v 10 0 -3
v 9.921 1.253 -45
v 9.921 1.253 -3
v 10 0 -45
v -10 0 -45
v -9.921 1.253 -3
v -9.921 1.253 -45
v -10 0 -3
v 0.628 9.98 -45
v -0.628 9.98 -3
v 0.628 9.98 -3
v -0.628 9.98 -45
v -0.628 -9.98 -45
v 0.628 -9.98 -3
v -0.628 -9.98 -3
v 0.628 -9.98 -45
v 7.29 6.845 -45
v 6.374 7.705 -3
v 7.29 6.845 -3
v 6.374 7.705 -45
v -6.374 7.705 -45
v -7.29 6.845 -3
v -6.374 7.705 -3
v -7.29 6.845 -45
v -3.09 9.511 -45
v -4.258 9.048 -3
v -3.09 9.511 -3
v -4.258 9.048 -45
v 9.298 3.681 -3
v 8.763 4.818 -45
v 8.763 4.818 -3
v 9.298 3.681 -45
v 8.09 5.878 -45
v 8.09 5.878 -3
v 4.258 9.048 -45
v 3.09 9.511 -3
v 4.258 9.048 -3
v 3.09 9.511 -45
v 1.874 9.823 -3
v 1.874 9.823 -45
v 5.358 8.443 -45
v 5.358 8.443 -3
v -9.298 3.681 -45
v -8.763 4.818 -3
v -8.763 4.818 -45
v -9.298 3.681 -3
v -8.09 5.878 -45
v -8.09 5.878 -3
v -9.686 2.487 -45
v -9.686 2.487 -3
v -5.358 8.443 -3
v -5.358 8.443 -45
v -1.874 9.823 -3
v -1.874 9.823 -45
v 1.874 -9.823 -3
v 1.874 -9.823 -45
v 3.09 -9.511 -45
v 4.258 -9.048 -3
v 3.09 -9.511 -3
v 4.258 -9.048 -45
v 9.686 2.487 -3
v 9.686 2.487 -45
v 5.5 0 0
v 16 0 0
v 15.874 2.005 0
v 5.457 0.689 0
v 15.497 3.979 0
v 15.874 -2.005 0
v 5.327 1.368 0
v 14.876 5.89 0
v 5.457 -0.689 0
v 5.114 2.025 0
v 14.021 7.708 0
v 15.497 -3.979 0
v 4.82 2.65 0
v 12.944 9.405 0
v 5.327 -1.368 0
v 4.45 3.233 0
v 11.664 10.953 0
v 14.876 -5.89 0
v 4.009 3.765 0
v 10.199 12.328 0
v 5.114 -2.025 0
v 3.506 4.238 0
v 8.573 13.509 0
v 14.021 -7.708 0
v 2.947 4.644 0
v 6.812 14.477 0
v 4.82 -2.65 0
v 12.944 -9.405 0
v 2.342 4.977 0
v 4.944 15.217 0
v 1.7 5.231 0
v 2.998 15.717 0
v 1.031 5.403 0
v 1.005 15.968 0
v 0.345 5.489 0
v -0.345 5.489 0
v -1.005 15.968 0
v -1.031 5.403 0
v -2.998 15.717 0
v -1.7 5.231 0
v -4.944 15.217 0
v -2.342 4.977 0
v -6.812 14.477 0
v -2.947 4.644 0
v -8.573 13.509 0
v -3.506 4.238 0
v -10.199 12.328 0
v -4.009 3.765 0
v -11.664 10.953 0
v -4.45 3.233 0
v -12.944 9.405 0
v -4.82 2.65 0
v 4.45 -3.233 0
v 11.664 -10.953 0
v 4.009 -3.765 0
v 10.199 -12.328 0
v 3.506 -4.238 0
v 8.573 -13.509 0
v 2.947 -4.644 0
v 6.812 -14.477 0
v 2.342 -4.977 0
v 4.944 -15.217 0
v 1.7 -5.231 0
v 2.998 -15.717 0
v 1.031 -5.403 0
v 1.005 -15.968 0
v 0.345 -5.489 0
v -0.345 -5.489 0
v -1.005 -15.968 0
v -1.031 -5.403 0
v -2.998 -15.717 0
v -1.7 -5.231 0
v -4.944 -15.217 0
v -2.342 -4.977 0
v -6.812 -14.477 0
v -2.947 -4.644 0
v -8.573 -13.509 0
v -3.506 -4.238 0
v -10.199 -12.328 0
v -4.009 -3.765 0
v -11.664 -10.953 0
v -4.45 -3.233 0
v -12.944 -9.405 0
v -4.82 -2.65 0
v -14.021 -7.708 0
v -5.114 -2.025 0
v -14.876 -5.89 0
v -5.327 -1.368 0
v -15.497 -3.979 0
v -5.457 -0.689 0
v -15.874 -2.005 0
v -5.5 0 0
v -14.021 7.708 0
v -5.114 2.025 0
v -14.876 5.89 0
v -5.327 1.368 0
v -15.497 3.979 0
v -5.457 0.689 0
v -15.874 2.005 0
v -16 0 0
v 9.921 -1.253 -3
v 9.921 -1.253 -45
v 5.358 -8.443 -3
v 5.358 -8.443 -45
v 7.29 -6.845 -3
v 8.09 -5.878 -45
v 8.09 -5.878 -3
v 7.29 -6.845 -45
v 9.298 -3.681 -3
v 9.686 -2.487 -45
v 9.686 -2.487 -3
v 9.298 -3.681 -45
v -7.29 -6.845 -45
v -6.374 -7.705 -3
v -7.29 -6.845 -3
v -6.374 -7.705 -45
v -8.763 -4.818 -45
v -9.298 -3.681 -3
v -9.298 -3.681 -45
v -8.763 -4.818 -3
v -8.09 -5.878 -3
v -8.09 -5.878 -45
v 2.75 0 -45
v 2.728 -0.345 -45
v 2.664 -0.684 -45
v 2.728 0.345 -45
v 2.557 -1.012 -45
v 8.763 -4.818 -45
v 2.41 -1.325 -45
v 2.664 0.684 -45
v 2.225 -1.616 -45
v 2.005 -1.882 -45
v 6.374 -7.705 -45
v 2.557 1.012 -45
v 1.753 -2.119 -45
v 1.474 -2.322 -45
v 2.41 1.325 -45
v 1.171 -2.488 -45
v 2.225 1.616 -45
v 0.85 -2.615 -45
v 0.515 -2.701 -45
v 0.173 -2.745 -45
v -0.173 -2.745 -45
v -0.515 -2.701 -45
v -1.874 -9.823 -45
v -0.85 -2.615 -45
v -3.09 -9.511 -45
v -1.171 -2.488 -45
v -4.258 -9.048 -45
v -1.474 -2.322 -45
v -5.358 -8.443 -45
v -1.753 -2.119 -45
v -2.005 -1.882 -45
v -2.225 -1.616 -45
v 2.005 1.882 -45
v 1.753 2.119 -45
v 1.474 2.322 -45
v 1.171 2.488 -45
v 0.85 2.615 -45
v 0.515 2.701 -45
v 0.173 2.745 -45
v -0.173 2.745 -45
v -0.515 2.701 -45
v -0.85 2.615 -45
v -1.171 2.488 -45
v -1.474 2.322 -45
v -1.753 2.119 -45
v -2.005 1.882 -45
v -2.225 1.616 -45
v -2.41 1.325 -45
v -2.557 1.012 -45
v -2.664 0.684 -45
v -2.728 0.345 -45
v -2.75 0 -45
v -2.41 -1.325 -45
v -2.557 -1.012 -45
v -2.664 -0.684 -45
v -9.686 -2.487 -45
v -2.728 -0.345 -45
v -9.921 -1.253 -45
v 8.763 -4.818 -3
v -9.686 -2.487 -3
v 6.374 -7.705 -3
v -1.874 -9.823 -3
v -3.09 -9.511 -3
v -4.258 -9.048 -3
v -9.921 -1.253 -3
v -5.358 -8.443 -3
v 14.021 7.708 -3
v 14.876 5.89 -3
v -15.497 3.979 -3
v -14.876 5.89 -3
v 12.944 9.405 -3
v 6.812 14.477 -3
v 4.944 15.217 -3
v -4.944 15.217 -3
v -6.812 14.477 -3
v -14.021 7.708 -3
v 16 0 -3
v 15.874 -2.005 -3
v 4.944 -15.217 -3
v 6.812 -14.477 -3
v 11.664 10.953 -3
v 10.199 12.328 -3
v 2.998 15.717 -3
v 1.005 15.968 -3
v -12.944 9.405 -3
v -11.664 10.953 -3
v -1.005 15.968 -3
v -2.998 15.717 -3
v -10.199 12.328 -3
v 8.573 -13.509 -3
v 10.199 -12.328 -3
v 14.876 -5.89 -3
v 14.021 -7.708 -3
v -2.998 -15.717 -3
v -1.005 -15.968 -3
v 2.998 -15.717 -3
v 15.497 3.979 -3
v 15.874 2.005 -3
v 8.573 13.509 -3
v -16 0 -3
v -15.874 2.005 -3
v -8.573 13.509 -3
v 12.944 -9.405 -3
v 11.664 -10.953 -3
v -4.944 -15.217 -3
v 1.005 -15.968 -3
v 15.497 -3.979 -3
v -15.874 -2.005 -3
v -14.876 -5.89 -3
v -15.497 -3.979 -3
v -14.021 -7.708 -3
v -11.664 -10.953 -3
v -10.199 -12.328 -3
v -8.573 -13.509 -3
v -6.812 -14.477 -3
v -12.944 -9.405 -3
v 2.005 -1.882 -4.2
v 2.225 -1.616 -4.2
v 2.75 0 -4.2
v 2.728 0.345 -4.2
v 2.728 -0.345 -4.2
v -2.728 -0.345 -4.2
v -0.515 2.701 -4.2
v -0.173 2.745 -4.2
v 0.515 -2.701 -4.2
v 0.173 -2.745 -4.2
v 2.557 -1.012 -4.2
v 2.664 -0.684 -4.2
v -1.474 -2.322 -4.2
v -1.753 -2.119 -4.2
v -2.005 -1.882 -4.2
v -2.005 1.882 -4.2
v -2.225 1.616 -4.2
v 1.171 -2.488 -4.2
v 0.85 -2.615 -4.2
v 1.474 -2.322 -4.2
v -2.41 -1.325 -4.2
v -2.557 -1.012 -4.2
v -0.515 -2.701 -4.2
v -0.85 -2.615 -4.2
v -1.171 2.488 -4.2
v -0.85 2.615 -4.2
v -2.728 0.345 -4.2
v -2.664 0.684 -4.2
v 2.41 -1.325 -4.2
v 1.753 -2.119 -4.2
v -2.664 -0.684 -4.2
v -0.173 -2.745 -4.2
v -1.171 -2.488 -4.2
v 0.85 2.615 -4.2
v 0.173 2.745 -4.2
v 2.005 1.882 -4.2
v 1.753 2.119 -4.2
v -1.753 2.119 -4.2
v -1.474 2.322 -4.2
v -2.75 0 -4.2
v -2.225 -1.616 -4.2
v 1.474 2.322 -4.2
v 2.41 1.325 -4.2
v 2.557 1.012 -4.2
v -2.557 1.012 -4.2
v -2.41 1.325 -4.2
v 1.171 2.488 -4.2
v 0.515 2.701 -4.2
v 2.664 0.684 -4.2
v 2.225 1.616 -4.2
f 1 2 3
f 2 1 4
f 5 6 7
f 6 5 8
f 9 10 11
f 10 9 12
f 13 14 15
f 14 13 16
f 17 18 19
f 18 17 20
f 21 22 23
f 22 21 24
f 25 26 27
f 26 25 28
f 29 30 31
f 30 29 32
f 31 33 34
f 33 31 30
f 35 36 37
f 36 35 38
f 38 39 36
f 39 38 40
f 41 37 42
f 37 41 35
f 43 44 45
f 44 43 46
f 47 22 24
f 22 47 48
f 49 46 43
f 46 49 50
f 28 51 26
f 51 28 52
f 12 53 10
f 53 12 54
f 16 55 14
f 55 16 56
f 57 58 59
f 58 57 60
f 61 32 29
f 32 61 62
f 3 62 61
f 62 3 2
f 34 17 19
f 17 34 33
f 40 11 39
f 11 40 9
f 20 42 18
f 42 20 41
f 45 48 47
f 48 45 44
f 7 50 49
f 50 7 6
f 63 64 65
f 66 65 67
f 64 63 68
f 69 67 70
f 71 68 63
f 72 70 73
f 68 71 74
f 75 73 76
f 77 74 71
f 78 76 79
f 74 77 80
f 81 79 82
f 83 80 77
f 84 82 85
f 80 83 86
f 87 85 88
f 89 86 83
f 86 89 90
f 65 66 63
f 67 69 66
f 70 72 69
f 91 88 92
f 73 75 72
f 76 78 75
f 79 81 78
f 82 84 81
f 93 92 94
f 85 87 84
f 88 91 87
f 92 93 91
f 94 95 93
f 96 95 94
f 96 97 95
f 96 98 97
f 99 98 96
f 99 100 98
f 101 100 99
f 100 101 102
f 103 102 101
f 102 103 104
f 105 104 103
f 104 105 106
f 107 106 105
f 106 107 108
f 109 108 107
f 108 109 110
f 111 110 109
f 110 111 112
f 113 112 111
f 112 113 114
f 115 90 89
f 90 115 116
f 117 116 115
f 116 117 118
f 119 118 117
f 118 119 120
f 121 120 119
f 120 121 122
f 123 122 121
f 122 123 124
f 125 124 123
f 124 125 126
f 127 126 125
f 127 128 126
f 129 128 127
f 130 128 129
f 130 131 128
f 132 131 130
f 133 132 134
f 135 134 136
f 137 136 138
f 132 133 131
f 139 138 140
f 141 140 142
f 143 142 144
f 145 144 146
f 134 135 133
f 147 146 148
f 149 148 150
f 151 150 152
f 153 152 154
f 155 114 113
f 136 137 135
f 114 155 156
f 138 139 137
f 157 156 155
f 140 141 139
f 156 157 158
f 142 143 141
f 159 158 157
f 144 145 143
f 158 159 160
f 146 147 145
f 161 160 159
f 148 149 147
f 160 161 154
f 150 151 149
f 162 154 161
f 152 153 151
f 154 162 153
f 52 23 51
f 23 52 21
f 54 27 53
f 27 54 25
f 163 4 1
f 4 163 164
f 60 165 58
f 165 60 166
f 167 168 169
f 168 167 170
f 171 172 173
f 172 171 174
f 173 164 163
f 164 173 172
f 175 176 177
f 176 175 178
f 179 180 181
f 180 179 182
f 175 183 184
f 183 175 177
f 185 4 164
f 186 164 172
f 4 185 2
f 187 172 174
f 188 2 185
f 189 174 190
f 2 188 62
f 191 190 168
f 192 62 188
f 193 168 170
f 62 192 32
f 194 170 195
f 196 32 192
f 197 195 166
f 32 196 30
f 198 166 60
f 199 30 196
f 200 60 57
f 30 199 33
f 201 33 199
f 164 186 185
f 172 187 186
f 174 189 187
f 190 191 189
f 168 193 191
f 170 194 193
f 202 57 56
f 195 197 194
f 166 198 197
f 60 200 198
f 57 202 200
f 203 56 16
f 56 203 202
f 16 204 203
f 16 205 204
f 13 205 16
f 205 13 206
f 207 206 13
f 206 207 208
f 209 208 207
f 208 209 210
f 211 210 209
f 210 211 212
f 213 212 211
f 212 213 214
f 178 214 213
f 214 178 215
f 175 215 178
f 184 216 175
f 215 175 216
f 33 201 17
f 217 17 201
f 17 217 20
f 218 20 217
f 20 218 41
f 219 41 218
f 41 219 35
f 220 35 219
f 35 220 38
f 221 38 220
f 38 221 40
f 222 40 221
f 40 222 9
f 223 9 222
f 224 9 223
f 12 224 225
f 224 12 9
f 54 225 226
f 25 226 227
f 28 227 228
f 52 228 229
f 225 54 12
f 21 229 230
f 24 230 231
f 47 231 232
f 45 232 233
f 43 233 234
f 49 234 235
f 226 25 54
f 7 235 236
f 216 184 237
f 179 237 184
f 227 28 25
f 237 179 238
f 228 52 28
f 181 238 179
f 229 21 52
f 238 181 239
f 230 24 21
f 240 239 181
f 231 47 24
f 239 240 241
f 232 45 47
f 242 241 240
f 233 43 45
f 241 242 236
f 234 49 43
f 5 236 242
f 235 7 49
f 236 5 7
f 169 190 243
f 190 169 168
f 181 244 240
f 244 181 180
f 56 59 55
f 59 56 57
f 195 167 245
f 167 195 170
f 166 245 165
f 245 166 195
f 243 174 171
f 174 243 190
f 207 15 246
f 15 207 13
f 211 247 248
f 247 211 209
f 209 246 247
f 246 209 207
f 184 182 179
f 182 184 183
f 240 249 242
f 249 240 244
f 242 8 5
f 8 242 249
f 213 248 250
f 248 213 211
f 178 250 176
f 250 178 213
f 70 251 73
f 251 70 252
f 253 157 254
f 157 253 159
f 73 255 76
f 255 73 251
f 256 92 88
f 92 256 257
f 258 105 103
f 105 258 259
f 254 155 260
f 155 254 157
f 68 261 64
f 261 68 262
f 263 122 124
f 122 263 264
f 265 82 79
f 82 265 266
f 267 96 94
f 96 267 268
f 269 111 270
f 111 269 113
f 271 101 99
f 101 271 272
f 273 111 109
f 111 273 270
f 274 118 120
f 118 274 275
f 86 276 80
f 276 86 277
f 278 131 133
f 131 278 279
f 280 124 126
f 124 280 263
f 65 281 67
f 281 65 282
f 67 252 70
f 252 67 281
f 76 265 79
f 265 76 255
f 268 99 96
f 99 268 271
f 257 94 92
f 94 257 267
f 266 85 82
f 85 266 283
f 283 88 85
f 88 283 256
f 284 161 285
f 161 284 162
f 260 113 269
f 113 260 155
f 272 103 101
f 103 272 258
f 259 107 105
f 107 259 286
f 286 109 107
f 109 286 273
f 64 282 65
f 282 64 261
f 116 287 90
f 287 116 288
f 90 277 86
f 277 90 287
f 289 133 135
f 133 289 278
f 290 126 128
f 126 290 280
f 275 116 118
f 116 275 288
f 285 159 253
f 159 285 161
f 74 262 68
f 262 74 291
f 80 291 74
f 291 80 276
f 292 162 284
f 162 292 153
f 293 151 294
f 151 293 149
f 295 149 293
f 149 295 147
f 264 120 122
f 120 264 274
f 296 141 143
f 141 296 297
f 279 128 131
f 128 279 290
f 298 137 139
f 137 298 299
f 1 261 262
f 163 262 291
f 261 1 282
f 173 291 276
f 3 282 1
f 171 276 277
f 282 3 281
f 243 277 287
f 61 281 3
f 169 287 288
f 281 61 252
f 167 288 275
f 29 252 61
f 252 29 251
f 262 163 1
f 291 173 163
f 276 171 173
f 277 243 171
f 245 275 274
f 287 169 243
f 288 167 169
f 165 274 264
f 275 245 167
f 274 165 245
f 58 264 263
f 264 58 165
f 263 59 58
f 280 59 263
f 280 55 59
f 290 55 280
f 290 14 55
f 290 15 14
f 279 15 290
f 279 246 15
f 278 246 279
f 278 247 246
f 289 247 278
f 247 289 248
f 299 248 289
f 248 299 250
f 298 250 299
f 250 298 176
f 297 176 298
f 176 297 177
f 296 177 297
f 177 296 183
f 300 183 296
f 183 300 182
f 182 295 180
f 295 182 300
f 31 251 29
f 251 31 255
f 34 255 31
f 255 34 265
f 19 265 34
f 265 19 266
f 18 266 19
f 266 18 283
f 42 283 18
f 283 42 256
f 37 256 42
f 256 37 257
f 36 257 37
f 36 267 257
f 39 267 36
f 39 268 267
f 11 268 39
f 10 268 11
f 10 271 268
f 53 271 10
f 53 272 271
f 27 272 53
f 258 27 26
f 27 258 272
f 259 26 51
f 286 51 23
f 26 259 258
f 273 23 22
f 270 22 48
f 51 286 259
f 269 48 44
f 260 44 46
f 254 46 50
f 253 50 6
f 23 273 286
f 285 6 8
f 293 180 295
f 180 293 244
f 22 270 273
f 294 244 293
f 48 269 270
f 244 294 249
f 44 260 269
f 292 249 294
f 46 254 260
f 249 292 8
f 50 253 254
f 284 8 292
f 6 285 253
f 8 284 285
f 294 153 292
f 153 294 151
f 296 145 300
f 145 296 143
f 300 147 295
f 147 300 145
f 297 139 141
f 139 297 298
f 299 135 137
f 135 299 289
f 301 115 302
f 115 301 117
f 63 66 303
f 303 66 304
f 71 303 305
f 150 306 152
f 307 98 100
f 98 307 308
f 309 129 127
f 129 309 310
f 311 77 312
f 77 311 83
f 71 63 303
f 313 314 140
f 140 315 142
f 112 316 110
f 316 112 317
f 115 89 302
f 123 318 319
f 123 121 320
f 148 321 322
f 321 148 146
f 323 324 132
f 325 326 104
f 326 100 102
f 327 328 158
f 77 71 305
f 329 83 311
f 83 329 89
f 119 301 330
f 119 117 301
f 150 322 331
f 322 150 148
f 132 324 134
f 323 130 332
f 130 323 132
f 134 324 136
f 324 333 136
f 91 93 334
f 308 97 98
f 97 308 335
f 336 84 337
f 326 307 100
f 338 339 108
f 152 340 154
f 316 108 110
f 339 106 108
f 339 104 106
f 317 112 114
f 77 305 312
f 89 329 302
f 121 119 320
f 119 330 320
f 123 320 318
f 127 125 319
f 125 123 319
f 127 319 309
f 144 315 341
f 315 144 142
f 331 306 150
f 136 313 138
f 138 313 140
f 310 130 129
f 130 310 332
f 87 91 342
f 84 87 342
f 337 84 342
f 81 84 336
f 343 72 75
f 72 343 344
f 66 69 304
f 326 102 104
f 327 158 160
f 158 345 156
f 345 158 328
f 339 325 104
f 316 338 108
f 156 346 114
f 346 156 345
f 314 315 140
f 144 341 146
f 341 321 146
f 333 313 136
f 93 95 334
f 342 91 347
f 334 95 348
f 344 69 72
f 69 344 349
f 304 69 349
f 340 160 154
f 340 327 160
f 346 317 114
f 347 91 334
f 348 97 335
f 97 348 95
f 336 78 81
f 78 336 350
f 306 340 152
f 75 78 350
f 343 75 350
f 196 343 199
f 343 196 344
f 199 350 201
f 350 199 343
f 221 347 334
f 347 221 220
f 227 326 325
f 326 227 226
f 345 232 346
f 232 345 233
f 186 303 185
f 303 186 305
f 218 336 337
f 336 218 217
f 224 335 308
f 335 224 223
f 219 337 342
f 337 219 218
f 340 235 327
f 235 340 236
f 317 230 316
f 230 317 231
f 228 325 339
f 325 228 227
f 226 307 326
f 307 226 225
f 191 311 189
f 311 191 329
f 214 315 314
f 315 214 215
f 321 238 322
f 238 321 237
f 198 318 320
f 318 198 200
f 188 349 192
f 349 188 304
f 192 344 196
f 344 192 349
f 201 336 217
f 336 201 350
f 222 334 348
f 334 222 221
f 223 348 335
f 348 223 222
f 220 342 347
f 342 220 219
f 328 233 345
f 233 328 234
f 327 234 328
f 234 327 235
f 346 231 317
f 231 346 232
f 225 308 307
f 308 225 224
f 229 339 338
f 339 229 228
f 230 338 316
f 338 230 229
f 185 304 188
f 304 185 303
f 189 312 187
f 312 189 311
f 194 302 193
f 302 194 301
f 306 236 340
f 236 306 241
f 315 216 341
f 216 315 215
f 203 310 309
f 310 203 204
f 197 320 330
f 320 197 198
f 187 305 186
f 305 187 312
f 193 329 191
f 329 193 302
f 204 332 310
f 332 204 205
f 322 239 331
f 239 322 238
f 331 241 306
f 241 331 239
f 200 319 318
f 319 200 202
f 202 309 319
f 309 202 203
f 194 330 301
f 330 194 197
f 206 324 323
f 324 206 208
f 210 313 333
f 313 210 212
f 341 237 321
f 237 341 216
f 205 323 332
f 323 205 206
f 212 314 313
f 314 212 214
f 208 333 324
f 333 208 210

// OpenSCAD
$fn = 50;


difference() {
	union() {
		translate(v = [0, 0, -45.0000000000]) {
			cylinder(h = 45, r = 10.0000000000);
		}
		translate(v = [0, 0, -3.0000000000]) {
			cylinder(h = 3, r = 16.0000000000);
		}
	}
	union() {
		translate(v = [0, 0, 0]) {
			rotate(a = [0, 0, 0]) {
				difference() {
					union() {
						#translate(v = [0, 0, -45.0000000000]) {
							cylinder(h = 45, r = 2.2500000000);
						}
						#translate(v = [0, 0, -4.2000000000]) {
							cylinder(h = 4.2000000000, r1 = 2.7500000000, r2 = 5.5000000000);
						}
						#translate(v = [0, 0, -45.0000000000]) {
							cylinder(h = 45, r = 2.7500000000);
						}
						#translate(v = [0, 0, -45.0000000000]) {
							cylinder(h = 45, r = 2.2500000000);
						}
					}
					union();
				}
			}
		}
	}
}
